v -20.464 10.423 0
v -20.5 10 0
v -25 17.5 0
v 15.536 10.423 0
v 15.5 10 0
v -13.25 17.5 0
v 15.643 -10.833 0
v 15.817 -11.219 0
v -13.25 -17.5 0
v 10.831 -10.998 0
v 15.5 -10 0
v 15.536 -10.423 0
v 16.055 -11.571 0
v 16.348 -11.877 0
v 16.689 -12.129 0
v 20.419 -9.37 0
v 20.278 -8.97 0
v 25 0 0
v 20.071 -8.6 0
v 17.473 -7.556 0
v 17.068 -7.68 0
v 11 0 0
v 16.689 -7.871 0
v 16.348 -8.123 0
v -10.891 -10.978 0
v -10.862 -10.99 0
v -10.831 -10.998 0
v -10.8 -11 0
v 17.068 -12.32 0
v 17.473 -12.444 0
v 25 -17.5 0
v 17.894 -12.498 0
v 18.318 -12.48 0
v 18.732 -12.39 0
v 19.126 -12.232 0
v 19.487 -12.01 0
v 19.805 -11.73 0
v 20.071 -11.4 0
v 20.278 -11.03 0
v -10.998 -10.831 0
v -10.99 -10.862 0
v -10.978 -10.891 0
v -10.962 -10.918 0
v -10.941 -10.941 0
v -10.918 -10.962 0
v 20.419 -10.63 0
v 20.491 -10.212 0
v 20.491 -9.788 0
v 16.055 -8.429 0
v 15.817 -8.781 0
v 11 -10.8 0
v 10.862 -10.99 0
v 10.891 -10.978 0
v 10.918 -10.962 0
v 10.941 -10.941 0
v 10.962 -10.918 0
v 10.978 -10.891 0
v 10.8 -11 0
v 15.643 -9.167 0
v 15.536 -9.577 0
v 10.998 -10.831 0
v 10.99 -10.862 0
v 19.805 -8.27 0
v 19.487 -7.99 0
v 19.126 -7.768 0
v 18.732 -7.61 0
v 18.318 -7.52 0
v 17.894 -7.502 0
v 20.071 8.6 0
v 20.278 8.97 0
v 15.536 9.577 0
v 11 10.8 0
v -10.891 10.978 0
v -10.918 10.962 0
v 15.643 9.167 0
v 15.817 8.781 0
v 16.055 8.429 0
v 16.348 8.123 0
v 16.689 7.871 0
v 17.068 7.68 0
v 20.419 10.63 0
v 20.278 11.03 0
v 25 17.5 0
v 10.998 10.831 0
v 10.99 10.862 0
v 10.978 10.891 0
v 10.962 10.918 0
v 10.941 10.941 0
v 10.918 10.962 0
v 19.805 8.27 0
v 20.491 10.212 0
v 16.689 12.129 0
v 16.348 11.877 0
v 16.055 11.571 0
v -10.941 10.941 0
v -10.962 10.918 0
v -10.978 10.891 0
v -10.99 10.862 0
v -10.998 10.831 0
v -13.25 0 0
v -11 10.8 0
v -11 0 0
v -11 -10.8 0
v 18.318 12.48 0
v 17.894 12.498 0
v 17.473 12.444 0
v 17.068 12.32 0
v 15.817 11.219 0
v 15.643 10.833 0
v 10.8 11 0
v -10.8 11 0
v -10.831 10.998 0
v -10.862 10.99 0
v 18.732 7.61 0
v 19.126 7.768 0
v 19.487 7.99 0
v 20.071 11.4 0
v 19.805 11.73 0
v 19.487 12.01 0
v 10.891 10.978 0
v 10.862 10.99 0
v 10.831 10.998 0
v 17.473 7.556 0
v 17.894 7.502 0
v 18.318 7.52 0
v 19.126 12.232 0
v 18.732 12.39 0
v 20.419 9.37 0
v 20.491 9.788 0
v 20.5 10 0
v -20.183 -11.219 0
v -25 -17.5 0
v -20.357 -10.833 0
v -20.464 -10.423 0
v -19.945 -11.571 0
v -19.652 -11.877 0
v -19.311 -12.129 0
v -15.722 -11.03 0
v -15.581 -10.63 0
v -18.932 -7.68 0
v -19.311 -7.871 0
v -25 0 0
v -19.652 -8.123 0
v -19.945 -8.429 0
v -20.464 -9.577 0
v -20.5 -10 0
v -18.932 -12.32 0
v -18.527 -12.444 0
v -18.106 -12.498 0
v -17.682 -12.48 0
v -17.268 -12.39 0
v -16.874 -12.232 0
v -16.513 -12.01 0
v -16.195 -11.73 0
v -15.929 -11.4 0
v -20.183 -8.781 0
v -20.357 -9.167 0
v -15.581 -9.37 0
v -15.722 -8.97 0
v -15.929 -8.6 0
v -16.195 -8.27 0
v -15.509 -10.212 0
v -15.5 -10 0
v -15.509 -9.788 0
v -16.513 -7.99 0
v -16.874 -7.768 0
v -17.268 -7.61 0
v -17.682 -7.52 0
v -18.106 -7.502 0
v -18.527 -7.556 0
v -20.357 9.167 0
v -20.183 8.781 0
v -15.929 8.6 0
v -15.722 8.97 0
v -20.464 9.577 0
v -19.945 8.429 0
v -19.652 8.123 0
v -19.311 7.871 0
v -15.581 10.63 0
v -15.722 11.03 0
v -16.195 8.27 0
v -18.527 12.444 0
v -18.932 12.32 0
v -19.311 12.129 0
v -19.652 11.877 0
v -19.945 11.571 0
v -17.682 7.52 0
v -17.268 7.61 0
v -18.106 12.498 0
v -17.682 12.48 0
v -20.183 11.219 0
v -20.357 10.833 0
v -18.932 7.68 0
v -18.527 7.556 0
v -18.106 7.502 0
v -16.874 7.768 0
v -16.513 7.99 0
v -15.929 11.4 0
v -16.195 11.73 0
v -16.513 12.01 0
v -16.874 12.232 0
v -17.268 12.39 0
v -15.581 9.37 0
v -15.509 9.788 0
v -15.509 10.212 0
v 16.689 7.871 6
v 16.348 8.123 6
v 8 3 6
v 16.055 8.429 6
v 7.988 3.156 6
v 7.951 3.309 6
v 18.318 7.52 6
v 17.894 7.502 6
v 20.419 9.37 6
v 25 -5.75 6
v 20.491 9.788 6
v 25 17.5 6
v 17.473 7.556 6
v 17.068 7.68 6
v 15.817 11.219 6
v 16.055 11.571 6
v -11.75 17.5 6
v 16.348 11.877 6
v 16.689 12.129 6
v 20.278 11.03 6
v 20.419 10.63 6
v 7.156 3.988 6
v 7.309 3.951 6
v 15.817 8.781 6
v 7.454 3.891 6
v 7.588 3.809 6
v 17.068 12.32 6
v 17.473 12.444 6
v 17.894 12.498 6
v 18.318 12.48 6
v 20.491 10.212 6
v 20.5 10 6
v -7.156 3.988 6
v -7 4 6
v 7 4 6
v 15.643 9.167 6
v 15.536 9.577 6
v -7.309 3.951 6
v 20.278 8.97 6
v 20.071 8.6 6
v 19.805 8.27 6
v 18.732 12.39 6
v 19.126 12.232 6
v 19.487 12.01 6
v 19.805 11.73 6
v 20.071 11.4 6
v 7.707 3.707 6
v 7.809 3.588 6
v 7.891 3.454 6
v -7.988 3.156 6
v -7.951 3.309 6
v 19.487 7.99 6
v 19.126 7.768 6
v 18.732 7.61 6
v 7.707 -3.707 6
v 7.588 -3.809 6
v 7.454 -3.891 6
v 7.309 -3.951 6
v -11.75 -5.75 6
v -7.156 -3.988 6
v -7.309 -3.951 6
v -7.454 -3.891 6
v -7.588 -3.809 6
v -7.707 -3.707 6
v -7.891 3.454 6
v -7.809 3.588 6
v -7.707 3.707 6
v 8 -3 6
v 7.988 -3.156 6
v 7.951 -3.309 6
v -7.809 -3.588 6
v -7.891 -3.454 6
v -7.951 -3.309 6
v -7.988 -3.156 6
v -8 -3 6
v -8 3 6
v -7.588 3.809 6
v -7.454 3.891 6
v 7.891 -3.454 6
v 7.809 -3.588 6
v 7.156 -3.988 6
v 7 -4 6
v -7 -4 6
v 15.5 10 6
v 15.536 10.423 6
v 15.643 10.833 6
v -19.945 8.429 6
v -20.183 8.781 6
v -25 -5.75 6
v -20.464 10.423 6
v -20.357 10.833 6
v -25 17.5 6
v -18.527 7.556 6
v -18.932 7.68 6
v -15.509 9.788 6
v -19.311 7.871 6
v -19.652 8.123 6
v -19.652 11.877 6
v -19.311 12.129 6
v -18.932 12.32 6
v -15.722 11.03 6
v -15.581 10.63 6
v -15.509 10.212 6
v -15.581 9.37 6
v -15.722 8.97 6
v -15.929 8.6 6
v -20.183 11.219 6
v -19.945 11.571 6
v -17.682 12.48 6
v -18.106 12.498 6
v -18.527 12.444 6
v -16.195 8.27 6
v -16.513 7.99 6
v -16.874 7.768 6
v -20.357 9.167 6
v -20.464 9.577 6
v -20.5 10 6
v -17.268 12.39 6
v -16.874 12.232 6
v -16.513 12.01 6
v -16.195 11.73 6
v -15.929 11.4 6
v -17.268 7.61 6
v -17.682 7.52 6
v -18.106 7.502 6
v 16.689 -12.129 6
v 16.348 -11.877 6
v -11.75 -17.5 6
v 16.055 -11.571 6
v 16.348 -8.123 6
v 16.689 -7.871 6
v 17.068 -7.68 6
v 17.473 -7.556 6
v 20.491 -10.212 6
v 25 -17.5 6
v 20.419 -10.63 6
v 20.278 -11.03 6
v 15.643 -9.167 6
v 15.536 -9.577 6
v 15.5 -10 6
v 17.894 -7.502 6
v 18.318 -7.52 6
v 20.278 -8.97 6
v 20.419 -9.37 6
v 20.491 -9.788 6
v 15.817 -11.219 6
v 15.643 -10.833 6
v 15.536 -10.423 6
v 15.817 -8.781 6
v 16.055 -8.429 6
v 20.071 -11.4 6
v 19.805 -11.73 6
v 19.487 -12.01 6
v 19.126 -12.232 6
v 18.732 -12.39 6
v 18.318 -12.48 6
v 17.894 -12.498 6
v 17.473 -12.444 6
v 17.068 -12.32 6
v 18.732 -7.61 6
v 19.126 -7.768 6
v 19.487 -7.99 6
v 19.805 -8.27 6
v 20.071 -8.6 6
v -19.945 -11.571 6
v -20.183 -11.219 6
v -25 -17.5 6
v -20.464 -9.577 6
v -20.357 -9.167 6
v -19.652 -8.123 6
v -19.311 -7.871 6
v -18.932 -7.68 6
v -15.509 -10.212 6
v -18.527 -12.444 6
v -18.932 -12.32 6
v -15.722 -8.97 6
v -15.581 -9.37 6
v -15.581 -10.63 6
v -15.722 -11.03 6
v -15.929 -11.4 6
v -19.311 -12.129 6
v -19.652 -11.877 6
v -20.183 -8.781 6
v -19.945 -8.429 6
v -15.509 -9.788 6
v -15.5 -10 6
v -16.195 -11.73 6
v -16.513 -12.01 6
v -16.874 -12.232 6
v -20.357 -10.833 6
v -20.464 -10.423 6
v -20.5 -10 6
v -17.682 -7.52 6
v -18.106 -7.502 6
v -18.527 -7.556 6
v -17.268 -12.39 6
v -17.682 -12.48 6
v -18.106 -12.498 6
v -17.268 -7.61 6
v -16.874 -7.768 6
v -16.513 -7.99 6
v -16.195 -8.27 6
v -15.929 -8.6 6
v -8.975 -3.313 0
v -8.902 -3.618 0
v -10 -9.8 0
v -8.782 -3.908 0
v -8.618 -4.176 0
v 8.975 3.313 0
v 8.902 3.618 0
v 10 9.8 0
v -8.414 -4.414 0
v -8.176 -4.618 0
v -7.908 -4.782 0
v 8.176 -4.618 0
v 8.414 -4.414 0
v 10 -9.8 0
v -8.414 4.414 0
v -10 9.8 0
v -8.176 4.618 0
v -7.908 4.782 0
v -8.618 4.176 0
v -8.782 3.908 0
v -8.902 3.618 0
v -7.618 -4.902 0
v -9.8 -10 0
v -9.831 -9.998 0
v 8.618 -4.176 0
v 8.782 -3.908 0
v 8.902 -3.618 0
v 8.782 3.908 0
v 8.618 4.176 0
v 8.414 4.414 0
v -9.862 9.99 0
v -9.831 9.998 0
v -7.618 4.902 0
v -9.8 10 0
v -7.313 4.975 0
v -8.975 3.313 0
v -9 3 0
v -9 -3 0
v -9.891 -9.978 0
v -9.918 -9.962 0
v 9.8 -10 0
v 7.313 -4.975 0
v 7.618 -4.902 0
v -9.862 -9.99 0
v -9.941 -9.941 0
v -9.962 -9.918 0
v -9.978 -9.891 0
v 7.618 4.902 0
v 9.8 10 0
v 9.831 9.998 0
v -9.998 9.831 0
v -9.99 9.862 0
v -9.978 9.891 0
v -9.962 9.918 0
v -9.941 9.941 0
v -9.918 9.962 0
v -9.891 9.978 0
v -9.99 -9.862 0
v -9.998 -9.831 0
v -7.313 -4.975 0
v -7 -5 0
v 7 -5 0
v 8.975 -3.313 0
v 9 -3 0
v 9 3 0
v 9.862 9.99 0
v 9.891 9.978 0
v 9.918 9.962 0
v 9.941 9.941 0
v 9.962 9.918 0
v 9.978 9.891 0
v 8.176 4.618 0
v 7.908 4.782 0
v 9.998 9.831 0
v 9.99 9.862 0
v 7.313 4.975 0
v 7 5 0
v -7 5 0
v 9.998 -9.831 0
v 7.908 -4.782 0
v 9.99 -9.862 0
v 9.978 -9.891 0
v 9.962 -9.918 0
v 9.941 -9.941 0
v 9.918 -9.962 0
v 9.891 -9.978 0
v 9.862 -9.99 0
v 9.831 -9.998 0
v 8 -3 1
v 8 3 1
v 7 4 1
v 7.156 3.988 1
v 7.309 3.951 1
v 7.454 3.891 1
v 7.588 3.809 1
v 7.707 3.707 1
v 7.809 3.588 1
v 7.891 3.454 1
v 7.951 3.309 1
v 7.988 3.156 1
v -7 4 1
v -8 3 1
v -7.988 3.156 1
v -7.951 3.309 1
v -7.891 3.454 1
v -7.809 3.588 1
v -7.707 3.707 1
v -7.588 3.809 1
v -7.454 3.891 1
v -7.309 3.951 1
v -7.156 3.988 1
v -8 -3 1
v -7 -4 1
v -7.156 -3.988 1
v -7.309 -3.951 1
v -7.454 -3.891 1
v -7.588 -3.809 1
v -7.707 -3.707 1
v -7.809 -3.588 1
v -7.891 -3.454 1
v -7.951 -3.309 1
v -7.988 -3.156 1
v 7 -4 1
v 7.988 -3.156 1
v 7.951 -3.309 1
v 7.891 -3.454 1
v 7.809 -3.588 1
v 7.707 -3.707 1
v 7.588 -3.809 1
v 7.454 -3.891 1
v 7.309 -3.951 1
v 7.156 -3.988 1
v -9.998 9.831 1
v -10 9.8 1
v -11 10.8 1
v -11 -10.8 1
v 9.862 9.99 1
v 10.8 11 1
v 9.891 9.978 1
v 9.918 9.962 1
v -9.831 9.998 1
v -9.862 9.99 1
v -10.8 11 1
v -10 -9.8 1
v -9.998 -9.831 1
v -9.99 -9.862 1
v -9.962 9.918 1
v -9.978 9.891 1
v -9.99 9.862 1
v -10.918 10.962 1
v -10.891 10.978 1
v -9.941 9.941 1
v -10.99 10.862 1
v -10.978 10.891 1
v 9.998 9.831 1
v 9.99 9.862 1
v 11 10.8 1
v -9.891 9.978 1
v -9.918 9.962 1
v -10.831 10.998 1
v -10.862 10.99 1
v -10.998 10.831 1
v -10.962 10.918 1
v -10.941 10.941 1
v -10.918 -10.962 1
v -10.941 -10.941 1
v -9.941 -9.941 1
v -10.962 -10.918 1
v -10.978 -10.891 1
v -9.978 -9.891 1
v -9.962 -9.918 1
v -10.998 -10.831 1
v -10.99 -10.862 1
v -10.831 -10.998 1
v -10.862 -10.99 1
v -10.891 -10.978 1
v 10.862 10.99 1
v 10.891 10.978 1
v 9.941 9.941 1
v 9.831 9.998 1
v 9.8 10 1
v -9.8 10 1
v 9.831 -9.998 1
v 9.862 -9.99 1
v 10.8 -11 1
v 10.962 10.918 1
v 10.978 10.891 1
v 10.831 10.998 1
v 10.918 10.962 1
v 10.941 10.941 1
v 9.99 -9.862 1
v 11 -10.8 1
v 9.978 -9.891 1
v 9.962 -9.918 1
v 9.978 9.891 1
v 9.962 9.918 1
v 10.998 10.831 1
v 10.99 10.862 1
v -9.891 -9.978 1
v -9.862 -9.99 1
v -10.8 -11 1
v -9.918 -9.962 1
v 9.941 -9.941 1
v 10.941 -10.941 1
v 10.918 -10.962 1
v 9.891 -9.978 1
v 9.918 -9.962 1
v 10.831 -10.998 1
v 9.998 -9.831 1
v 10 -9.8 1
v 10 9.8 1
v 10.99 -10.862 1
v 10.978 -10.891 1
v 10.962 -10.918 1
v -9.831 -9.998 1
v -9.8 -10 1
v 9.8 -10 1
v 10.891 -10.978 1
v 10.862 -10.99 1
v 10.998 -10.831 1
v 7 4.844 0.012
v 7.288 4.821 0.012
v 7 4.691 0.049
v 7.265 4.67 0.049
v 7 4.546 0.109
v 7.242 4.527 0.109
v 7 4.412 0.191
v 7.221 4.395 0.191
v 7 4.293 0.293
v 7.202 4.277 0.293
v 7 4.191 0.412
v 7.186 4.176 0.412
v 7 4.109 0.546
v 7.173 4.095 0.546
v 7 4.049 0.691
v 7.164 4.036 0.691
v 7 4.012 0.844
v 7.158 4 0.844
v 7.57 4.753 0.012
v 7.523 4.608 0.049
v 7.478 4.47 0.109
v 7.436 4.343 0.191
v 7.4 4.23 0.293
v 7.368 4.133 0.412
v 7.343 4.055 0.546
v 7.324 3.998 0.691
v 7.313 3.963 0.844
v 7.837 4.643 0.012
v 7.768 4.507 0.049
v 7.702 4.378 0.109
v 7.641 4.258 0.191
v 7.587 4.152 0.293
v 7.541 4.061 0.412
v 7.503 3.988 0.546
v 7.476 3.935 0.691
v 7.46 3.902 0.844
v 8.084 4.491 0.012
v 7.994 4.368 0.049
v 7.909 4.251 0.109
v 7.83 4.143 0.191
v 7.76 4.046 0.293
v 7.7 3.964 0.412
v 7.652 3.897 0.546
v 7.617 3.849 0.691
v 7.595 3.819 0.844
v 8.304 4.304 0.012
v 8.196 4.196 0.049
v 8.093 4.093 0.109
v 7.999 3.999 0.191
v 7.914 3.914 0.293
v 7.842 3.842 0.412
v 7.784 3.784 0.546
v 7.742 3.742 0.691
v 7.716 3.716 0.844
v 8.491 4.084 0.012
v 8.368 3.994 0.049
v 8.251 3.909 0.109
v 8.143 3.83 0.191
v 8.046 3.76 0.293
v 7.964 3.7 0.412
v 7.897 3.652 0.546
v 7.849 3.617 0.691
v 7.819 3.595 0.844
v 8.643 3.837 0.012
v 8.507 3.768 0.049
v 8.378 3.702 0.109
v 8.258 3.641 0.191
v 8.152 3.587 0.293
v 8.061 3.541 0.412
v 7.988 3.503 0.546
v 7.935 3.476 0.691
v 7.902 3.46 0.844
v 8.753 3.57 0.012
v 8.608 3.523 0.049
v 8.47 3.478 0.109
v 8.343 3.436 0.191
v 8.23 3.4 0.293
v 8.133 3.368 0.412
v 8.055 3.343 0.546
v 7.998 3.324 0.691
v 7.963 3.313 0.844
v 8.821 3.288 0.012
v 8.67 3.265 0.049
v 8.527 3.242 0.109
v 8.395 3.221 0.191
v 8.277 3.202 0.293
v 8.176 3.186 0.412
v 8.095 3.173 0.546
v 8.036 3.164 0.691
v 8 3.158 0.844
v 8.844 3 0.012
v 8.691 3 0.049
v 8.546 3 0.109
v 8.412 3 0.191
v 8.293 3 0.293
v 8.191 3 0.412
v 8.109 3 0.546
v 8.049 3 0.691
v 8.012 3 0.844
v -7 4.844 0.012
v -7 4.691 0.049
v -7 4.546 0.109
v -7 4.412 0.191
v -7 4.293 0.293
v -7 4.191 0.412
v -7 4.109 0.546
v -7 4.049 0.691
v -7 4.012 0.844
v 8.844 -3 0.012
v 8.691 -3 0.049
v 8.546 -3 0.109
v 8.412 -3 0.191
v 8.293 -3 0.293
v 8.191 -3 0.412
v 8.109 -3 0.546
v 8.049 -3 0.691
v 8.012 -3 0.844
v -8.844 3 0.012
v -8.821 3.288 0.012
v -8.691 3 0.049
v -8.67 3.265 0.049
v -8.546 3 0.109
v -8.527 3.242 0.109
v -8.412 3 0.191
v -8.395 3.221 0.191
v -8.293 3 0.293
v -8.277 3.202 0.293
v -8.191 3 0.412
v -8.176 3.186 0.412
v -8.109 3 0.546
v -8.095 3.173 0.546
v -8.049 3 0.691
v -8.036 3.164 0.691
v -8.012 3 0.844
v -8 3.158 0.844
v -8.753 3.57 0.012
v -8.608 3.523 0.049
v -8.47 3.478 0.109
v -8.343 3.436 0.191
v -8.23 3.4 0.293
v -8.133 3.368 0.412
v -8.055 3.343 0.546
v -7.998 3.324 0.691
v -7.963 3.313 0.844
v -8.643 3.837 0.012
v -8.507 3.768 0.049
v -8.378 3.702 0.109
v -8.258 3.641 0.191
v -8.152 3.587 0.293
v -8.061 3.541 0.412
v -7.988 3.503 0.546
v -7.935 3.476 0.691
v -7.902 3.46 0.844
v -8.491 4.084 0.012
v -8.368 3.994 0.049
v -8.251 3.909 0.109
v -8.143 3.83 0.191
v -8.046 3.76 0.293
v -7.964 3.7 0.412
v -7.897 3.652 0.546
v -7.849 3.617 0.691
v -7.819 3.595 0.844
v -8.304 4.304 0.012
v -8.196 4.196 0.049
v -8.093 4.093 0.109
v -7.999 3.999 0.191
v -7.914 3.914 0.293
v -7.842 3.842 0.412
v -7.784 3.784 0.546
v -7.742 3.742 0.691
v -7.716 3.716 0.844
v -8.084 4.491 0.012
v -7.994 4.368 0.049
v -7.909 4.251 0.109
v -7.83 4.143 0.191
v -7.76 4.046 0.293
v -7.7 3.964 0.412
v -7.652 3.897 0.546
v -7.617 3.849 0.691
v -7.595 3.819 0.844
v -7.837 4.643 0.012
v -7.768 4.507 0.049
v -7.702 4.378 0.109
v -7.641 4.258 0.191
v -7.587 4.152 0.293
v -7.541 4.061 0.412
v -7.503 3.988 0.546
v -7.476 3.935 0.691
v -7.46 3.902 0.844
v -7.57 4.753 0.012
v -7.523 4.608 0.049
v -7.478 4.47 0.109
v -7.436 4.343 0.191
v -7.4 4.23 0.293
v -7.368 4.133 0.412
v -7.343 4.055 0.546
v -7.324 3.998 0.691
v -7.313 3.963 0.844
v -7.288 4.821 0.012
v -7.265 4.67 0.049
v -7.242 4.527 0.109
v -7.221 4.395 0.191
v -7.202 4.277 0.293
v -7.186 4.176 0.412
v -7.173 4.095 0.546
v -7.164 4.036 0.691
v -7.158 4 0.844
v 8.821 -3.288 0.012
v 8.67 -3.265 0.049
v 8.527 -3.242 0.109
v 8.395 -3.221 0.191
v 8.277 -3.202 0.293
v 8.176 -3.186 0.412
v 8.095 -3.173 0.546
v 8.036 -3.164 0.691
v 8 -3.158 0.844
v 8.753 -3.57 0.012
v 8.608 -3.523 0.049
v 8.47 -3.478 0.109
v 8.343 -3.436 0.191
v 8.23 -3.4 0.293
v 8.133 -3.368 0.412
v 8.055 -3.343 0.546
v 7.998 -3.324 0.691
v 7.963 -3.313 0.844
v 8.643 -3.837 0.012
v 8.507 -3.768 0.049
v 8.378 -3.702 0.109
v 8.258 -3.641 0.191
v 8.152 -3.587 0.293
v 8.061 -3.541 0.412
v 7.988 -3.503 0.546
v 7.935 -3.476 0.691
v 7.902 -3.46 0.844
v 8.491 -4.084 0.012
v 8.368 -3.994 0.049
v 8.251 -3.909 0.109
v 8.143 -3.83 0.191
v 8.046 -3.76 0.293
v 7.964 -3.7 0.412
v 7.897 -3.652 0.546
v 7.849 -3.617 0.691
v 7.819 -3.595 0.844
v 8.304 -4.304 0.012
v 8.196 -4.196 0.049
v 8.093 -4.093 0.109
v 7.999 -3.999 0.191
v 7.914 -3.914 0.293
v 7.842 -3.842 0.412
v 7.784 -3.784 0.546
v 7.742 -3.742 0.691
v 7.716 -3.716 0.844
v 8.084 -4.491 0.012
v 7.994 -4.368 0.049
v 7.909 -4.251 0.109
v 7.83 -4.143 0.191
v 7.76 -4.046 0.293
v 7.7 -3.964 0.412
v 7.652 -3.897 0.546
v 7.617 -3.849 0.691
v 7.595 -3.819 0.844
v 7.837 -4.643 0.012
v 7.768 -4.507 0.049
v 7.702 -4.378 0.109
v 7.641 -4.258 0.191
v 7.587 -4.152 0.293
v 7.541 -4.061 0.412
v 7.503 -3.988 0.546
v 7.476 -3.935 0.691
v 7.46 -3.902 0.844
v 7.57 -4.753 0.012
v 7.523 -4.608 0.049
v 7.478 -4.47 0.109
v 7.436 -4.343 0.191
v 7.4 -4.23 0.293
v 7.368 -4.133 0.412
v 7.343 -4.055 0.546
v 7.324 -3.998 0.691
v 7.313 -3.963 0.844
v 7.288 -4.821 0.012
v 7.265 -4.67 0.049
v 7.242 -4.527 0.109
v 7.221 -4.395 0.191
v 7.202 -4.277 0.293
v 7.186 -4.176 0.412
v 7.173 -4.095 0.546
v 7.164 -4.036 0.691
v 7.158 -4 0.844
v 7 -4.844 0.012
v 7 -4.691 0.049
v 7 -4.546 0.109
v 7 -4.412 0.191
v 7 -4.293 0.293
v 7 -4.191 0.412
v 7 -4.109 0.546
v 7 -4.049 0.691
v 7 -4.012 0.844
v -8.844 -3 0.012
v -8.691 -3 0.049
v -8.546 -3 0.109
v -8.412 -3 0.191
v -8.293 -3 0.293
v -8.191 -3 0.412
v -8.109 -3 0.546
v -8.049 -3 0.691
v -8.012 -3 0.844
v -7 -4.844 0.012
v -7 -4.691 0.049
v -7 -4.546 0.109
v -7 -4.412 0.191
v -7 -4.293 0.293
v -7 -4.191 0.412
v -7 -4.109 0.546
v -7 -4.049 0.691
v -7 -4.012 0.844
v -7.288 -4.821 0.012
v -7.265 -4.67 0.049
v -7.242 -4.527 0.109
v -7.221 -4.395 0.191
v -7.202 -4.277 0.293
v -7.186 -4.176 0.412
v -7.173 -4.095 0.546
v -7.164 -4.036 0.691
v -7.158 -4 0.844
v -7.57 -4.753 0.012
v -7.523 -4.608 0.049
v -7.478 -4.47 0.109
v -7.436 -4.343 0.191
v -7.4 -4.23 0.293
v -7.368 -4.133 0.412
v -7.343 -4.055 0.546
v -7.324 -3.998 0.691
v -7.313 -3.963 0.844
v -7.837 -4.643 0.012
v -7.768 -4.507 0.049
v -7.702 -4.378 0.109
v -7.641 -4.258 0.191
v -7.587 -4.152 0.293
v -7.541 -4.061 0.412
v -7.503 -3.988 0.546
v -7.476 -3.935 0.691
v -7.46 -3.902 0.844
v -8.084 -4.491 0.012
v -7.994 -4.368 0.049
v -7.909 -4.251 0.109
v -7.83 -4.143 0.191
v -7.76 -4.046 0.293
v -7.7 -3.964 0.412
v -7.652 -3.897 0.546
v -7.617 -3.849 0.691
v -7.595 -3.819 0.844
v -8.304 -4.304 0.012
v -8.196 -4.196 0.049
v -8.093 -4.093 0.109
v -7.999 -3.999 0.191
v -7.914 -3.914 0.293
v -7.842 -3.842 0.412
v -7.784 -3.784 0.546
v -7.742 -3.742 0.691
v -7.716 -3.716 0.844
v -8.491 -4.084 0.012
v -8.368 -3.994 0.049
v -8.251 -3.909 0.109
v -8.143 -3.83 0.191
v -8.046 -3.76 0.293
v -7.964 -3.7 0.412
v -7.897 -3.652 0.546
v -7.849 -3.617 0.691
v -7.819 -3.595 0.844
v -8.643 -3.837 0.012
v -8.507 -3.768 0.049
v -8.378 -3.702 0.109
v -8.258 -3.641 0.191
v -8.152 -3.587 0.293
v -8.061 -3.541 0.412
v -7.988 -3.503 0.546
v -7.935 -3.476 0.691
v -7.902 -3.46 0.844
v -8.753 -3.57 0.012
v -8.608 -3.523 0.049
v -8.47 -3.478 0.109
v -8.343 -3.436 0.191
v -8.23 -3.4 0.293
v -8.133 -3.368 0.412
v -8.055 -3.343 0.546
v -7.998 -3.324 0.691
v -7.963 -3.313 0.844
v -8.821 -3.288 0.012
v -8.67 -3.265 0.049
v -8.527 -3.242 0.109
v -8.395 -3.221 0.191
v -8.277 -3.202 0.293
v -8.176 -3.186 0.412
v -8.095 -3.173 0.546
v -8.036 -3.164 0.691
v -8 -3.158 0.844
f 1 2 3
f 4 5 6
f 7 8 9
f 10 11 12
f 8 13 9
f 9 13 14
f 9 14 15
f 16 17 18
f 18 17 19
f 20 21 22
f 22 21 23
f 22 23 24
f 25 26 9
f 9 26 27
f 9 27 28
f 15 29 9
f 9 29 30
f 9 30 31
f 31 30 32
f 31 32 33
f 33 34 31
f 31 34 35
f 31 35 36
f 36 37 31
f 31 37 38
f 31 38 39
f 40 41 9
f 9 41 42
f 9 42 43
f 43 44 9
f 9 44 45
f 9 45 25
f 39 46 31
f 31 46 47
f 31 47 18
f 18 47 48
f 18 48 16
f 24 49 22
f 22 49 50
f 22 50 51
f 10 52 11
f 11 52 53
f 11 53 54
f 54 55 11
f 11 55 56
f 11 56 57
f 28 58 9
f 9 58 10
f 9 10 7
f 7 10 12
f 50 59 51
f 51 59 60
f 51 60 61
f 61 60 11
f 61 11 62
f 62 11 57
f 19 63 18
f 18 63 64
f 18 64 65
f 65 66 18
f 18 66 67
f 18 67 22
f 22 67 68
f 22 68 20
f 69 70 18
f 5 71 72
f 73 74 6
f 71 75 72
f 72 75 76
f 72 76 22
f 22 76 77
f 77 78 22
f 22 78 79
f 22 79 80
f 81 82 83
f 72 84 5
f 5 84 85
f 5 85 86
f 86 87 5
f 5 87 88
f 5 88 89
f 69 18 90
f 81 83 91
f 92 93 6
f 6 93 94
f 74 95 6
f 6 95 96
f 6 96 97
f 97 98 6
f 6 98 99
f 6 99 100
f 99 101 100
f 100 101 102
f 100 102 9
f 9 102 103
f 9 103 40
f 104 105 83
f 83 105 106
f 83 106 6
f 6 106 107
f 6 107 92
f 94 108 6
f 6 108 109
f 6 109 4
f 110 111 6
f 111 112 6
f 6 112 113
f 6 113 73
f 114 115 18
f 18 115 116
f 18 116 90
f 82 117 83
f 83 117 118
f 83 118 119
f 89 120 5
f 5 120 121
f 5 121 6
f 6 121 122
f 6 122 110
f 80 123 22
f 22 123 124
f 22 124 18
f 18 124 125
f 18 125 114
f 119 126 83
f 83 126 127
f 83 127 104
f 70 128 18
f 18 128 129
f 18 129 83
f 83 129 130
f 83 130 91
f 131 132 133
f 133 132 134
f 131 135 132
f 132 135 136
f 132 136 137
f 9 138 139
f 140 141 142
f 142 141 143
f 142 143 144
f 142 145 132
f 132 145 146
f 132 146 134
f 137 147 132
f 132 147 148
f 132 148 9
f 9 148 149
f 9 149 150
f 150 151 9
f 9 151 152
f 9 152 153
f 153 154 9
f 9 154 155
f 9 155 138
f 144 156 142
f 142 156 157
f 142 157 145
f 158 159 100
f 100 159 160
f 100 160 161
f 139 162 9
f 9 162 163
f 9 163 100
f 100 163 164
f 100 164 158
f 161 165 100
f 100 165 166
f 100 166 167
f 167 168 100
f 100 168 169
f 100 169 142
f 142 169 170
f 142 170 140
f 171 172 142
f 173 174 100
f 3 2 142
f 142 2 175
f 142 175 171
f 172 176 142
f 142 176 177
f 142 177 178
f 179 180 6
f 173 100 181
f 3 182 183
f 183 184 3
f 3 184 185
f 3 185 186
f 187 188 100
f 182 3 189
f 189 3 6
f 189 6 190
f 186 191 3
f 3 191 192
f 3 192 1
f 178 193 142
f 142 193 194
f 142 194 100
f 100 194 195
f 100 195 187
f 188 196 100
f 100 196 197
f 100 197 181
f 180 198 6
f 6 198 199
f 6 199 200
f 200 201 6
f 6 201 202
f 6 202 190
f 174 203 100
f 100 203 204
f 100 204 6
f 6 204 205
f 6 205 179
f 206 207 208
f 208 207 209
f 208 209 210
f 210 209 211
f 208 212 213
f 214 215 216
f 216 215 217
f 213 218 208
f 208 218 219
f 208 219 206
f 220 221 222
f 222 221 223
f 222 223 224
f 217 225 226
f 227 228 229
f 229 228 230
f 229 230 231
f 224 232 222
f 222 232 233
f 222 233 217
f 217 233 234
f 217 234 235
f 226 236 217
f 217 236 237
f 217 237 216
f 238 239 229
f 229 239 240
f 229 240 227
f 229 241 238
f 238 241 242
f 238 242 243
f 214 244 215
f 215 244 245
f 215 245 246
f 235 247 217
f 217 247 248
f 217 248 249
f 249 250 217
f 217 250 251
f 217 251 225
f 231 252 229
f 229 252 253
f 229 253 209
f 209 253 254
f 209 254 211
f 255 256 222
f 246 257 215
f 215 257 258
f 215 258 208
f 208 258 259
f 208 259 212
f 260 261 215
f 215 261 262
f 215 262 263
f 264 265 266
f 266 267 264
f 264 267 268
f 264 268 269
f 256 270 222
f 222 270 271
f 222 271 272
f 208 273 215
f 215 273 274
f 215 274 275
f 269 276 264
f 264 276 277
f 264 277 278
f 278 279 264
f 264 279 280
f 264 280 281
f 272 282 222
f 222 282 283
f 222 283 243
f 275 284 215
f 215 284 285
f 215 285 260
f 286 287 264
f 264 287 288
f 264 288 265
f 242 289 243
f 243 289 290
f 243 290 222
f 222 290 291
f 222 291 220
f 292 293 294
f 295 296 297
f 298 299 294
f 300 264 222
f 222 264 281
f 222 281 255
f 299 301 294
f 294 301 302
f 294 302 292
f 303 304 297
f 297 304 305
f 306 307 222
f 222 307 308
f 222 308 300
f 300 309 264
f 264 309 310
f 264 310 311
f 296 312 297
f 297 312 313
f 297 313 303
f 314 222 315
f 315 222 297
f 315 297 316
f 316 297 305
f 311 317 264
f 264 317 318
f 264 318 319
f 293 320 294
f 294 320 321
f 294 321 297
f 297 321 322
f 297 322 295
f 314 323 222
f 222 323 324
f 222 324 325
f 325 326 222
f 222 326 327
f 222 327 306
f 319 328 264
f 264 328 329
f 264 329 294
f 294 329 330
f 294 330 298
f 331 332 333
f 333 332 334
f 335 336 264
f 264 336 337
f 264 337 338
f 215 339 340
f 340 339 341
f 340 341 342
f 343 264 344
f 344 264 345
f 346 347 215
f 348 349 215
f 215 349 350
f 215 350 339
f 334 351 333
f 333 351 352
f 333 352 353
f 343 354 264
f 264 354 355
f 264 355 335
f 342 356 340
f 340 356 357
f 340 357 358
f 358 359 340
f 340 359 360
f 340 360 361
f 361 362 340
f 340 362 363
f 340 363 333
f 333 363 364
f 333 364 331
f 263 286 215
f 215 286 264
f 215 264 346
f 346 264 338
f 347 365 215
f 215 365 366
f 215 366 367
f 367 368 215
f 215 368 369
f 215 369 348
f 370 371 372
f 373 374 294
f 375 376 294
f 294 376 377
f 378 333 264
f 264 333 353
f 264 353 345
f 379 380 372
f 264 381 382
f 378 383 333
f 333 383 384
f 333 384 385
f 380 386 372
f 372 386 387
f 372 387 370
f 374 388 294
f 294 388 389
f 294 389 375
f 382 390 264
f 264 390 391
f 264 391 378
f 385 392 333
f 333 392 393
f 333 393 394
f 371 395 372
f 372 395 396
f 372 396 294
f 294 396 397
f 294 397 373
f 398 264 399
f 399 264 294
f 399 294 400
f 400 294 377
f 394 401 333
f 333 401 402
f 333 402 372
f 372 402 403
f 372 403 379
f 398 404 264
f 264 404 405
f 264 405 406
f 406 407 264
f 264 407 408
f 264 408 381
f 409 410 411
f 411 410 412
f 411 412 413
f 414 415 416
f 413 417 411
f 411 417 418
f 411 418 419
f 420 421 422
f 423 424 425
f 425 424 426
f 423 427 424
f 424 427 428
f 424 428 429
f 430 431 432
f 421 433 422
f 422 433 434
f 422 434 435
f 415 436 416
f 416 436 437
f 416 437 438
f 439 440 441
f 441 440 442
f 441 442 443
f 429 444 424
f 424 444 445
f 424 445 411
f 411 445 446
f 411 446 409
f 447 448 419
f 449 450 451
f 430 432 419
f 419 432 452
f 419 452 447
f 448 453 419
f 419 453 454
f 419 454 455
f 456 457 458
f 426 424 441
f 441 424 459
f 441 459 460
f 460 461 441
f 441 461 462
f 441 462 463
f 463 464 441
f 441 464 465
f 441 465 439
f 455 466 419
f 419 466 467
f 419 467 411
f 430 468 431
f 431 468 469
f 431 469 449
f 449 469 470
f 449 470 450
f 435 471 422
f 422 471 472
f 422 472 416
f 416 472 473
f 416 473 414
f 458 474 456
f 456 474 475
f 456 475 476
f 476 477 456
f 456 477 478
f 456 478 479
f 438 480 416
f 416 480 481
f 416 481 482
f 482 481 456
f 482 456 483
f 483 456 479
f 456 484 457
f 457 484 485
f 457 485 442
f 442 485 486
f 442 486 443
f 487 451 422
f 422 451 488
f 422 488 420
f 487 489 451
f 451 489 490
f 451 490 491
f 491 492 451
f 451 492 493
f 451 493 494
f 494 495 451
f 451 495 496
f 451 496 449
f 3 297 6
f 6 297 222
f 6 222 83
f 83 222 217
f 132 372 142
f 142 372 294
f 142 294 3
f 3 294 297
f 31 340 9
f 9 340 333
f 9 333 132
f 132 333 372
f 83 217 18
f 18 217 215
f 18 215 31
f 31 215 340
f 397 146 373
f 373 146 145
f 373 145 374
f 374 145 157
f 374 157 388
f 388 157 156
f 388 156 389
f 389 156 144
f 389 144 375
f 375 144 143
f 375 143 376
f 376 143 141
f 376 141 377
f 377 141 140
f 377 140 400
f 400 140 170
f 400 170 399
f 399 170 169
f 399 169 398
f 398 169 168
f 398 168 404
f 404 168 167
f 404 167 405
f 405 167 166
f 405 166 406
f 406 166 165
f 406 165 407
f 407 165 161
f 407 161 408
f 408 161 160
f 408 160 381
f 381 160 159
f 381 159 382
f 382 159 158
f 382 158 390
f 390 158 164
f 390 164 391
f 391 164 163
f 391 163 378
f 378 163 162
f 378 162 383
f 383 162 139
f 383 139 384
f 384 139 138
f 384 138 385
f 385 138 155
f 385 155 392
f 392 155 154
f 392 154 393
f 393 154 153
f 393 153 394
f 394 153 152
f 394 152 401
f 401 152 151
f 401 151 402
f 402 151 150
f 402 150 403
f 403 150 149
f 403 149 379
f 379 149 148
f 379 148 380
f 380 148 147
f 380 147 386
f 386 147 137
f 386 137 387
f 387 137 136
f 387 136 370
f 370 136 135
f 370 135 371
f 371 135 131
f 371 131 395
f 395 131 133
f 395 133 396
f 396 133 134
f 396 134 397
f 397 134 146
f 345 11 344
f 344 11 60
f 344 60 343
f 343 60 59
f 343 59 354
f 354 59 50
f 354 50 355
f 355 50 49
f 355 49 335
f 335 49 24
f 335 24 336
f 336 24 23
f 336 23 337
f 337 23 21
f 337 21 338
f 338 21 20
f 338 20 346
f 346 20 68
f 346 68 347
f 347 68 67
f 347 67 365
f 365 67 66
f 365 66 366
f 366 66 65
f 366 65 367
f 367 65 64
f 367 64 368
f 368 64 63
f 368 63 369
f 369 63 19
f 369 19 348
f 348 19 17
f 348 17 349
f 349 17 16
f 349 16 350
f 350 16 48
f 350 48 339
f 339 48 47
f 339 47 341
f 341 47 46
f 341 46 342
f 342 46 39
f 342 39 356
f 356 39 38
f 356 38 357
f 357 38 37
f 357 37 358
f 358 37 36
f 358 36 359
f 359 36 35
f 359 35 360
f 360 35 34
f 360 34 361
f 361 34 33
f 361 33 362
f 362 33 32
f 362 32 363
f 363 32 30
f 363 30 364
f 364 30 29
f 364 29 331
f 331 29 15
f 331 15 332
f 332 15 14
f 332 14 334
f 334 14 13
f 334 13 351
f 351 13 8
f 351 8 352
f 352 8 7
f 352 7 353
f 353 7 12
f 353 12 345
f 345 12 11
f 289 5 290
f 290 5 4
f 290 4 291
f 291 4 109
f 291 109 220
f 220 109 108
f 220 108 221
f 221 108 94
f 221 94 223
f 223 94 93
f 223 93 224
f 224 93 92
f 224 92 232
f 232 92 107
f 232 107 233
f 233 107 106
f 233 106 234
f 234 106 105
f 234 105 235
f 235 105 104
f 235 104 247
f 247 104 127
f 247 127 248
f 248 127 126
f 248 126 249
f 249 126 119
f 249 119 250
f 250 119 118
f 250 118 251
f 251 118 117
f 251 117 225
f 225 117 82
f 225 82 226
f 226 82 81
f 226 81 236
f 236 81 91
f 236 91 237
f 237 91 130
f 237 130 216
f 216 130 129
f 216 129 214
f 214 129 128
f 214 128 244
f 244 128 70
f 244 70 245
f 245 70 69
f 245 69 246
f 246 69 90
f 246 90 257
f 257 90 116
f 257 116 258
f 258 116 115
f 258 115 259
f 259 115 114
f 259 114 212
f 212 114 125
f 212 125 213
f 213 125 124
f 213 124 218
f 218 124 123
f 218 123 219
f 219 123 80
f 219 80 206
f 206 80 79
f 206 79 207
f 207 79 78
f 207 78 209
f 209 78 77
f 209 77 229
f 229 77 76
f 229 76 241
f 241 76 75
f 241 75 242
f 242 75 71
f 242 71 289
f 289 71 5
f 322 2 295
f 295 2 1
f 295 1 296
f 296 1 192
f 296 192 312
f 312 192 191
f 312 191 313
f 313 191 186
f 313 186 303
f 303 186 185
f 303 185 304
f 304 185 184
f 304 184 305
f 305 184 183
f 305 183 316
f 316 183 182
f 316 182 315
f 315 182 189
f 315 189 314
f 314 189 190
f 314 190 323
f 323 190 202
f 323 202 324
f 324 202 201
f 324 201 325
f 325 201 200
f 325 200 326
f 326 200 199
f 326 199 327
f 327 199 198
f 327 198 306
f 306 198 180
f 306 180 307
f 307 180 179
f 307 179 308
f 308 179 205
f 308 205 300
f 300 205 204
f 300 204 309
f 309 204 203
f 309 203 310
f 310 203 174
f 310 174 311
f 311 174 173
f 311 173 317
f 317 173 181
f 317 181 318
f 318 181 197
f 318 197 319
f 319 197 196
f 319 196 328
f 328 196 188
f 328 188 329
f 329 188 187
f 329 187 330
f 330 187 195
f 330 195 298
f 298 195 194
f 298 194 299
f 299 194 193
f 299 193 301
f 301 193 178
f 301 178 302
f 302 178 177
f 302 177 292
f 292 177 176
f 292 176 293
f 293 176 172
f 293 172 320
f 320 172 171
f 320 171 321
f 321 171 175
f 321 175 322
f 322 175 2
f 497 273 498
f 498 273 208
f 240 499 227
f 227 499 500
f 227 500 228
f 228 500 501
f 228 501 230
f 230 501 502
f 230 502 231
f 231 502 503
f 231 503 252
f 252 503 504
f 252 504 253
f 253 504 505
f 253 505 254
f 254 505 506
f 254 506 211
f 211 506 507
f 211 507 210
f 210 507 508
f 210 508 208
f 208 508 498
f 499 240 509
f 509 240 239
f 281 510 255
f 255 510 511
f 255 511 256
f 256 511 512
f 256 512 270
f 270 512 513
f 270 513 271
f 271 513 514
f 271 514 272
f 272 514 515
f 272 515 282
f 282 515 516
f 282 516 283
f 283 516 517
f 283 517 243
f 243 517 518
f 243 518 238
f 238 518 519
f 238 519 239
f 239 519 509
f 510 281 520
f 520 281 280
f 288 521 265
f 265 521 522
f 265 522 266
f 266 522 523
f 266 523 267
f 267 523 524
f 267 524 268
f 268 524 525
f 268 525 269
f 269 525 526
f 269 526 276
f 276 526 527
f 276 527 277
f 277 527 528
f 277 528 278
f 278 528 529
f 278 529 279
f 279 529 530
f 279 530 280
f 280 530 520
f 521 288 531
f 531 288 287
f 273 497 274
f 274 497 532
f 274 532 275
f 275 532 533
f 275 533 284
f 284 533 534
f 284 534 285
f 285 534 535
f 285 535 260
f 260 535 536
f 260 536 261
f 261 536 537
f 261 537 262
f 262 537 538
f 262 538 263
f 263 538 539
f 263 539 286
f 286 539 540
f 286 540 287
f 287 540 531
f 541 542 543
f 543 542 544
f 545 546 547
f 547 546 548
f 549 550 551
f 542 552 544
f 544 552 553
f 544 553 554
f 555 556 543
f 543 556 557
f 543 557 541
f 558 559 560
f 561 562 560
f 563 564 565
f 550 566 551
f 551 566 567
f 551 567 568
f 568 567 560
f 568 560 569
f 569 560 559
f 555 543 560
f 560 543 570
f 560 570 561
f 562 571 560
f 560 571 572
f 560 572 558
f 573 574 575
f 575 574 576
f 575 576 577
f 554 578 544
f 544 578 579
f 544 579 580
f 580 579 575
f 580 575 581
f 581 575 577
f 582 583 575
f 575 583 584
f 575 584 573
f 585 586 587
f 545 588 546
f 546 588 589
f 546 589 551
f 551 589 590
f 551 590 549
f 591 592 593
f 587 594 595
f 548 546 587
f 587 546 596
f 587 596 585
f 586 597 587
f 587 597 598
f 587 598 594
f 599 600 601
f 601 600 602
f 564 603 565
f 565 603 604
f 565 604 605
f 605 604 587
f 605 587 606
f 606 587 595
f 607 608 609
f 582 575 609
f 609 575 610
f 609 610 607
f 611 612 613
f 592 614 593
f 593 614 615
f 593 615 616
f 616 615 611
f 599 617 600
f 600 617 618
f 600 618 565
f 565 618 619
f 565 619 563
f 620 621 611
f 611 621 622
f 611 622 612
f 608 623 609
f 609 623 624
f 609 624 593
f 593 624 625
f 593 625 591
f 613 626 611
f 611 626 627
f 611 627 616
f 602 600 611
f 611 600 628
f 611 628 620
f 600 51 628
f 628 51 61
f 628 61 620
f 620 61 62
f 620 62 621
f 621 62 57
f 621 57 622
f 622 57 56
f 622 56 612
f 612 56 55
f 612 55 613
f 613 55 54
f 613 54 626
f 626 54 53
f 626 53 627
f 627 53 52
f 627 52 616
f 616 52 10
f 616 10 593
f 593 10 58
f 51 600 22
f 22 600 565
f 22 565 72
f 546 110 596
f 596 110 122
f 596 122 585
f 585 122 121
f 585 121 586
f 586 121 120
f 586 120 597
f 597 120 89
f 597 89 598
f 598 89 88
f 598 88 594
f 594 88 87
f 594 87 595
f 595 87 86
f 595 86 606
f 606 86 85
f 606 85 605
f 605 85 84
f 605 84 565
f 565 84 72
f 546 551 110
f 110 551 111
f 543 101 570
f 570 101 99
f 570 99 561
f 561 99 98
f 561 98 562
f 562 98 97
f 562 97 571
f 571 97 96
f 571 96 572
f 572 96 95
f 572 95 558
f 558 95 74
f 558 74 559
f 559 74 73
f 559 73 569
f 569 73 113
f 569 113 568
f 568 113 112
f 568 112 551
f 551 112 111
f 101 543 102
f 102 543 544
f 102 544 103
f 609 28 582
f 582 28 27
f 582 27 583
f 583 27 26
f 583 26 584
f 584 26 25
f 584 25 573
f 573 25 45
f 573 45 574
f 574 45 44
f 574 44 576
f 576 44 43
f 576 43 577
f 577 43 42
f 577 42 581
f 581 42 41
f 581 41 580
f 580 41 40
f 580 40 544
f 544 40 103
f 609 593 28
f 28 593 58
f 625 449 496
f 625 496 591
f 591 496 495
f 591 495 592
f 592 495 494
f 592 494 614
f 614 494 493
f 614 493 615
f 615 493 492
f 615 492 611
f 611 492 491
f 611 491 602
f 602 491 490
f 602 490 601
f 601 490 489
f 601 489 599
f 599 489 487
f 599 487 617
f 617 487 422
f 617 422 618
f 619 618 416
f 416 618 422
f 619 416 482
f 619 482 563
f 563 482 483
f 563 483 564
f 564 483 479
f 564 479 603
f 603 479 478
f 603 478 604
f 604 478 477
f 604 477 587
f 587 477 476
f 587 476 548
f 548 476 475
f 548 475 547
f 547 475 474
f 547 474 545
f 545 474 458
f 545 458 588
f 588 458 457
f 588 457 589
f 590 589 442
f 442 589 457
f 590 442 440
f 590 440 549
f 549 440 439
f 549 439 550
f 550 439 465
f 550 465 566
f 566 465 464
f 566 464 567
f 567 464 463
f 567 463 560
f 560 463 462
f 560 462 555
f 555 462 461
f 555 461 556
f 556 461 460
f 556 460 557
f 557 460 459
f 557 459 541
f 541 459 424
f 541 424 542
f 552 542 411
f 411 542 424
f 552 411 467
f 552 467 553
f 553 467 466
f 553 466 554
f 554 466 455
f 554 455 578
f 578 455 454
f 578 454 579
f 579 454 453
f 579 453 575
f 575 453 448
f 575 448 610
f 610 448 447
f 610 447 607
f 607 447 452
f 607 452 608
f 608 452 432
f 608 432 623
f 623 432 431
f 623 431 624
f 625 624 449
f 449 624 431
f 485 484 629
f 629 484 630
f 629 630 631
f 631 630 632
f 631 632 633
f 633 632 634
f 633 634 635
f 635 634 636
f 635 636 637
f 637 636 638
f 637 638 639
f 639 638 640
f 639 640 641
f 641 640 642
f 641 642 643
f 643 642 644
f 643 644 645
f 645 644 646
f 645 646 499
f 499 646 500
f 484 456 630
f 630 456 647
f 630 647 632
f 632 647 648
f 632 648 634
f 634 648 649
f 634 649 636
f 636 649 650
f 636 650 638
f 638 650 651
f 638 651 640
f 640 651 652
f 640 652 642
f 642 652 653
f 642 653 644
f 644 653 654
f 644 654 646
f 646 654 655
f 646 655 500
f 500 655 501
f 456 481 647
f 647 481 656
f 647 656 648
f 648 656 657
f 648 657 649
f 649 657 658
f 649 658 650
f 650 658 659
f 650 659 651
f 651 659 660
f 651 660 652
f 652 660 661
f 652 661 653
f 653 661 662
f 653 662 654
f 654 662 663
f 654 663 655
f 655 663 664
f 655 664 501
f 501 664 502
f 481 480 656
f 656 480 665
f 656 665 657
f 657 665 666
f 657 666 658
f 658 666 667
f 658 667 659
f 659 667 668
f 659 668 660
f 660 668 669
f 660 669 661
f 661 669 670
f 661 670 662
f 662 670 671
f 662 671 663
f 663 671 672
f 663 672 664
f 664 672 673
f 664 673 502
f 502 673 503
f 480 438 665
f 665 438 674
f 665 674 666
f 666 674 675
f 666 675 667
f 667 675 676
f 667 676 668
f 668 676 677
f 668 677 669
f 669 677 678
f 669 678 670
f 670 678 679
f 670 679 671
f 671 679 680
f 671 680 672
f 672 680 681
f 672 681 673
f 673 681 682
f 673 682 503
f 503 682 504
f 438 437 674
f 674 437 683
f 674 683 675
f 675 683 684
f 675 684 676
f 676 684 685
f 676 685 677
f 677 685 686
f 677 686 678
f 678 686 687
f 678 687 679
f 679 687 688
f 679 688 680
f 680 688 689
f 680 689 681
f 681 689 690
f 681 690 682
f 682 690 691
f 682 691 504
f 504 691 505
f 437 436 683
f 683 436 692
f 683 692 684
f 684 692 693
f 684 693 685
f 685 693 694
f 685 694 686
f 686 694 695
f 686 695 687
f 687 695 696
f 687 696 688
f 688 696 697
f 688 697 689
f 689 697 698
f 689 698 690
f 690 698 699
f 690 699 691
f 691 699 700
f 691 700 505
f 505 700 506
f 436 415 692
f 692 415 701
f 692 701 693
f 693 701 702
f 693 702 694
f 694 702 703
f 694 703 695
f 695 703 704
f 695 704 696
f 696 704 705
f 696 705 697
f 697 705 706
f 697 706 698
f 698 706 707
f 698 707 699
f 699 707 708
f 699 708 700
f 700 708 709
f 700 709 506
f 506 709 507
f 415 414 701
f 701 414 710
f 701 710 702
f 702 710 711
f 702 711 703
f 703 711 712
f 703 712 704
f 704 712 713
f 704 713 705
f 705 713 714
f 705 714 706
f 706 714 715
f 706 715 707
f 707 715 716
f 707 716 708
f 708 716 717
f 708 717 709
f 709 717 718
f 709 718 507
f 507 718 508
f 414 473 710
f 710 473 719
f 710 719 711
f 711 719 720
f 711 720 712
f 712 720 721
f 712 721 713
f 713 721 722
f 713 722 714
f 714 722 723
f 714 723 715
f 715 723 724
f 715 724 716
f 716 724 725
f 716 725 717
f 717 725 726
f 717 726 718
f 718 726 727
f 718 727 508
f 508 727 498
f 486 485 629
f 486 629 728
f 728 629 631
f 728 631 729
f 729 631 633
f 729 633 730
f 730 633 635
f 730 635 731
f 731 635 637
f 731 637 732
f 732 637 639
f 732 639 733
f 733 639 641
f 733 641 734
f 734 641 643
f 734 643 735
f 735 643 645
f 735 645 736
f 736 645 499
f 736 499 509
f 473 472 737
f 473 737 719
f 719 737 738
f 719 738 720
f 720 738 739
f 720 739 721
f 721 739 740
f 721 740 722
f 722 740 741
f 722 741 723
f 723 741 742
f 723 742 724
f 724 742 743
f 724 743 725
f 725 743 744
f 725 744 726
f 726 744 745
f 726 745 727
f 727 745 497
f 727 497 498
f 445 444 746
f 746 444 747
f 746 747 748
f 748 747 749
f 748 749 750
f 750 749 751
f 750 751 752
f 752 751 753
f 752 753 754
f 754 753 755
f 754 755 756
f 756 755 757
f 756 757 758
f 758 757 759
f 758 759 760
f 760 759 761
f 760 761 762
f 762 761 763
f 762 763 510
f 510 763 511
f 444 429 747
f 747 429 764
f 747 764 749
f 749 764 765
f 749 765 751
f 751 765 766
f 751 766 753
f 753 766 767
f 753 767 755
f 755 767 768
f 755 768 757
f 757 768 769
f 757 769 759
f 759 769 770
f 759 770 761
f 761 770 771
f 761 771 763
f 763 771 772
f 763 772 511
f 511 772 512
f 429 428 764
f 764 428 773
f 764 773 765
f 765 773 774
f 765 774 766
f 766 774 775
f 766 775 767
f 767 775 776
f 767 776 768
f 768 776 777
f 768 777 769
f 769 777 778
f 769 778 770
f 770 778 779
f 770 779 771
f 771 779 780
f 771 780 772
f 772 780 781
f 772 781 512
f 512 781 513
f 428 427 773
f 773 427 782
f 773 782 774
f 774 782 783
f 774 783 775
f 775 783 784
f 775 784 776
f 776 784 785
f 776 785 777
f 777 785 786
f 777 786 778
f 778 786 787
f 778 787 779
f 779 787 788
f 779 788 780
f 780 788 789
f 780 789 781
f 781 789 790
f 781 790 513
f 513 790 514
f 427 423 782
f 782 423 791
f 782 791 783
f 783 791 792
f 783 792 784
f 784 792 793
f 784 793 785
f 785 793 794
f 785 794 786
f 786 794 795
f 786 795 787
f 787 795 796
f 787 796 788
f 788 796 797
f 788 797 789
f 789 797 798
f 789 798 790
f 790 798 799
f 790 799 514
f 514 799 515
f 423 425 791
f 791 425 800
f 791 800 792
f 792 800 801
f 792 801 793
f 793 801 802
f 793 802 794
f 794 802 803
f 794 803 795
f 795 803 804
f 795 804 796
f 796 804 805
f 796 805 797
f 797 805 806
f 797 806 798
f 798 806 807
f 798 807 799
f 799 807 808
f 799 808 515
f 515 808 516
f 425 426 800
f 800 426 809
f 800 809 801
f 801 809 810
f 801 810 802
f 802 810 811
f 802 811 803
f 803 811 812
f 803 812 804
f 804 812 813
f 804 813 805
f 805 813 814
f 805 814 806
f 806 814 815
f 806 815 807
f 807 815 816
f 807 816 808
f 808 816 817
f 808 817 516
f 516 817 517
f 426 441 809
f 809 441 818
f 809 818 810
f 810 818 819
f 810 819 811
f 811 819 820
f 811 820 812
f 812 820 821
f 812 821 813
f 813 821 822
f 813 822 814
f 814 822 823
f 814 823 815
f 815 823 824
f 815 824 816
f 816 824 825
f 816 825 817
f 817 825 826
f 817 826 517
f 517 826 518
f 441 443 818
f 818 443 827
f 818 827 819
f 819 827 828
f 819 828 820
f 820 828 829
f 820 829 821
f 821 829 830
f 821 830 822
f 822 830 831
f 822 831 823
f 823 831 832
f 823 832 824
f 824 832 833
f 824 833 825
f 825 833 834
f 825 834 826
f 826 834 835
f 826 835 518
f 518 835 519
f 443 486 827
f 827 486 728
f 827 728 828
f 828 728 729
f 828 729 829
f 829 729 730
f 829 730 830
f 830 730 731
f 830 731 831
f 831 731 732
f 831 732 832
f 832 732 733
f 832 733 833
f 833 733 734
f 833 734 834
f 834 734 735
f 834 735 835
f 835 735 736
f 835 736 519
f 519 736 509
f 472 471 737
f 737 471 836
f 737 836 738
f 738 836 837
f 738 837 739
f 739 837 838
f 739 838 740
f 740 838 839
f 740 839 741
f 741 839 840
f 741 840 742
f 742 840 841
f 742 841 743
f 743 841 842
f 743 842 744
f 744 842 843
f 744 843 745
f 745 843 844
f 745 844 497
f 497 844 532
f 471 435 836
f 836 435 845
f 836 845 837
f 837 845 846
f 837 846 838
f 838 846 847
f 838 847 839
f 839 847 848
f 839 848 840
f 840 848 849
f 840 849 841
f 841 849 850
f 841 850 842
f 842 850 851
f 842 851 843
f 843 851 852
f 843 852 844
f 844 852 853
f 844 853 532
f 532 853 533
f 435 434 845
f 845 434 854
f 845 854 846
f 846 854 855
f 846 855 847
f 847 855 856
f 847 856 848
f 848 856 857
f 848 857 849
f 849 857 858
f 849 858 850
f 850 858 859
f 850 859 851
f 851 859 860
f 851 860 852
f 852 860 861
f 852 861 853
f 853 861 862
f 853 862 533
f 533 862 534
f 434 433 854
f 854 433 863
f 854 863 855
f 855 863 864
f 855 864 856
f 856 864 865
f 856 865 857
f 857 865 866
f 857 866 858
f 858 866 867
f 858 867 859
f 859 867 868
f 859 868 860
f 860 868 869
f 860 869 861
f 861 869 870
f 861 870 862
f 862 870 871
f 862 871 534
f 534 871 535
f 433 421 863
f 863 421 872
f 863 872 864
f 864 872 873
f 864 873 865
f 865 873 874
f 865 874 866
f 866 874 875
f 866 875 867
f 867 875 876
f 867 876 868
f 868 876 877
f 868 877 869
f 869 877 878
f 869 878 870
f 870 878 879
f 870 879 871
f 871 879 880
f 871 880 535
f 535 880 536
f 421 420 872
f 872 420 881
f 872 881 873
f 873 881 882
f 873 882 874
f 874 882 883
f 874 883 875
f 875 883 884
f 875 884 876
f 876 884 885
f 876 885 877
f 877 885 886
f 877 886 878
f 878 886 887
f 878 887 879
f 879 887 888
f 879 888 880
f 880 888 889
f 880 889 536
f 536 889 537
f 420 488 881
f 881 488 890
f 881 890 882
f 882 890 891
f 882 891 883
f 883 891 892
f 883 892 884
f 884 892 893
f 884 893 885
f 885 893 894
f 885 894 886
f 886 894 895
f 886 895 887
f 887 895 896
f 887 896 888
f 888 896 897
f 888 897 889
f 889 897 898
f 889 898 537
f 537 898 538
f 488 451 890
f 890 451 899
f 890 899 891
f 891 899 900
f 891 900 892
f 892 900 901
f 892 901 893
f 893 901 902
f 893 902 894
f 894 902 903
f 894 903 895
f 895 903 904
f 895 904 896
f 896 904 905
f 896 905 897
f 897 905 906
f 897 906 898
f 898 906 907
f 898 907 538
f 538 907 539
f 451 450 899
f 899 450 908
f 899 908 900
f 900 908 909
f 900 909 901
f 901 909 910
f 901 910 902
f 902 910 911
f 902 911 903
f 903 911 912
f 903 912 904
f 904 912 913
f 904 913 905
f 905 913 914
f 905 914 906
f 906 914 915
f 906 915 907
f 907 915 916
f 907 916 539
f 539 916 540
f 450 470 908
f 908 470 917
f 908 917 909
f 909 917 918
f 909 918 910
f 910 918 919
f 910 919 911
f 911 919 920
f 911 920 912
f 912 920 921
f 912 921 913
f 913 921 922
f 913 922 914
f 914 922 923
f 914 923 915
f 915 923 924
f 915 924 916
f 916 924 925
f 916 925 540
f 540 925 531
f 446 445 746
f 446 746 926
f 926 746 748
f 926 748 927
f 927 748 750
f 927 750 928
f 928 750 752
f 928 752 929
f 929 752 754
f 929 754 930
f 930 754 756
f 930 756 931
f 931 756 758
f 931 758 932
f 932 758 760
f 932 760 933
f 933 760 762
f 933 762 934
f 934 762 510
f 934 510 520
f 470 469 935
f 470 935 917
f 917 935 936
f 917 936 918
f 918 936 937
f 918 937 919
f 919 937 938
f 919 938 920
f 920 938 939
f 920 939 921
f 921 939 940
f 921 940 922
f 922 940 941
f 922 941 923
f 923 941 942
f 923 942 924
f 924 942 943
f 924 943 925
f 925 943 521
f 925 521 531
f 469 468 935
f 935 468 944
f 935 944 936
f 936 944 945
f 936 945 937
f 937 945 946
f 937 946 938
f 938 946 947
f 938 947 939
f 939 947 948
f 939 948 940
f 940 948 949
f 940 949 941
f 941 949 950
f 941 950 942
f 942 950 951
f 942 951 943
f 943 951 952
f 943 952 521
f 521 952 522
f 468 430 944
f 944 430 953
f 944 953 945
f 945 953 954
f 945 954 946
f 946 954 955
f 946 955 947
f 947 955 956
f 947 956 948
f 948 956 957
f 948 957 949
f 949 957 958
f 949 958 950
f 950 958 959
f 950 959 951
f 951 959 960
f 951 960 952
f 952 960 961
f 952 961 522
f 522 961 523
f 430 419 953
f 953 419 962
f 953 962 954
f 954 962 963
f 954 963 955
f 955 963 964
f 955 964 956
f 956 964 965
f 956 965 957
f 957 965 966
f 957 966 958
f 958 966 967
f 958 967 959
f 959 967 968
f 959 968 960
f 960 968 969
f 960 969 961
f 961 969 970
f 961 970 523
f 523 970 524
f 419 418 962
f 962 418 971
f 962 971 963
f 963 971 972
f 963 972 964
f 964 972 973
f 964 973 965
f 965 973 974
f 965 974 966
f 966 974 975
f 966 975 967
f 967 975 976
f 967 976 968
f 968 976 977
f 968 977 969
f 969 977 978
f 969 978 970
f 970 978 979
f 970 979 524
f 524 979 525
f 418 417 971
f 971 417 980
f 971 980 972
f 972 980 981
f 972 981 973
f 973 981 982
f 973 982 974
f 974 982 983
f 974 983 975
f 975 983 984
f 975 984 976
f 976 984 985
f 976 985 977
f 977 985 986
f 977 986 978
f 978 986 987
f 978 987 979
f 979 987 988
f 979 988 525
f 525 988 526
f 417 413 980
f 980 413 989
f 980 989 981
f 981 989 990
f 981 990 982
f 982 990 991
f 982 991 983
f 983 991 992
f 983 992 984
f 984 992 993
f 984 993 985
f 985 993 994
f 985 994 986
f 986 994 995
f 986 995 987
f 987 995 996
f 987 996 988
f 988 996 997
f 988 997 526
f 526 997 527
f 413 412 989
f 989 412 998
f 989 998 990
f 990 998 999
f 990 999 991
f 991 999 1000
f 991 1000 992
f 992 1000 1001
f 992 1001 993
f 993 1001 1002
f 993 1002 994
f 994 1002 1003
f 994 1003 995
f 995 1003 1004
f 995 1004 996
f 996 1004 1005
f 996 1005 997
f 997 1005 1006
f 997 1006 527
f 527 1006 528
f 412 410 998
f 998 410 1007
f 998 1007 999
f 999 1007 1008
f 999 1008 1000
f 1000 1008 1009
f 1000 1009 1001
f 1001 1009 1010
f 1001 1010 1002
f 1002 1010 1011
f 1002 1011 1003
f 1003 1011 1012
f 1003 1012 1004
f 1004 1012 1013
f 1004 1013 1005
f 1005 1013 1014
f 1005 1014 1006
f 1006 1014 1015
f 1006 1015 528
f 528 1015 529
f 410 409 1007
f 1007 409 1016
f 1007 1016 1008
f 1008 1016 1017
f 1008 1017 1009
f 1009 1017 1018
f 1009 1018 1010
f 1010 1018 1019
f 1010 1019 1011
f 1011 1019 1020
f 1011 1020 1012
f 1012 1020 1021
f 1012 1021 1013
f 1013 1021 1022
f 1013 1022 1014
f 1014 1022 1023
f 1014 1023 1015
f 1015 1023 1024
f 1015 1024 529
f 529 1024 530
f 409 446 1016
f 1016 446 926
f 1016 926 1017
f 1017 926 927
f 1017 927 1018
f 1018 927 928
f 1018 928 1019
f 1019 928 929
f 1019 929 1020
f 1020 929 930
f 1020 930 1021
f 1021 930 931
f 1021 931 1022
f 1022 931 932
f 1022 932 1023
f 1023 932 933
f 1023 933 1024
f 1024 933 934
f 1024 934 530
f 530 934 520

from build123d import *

# Parameters (mm, degrees)
SKETCH1_W           = 50
SKETCH1_H           = 35
SKETCH1_R           = 2.5
BOSS_EXTRUDE1_DEPTH = 6
CUT_EXTRUDE1_DEPTH  = 1
FILLET3_R           = 1


with BuildPart() as part:
    # Sketch1 → Boss-Extrude1 (new body)
    with BuildSketch(Plane.XY):
        Rectangle(SKETCH1_W, SKETCH1_H)
        with Locations((18, 10)):
            Circle(SKETCH1_R, mode=Mode.SUBTRACT)
        with Locations(Location((18, -10, 0), (0, 0, 180))):
            Circle(SKETCH1_R, mode=Mode.SUBTRACT)
        with Locations(Location((-18, 10, 0), (0, 0, 180))):
            Circle(SKETCH1_R, mode=Mode.SUBTRACT)
        with Locations((-18, -10)):
            Circle(SKETCH1_R, mode=Mode.SUBTRACT)
        with BuildLine():
            Line((-7, 4), (7, 4))
            ThreePointArc((7, 4), (7.707106781, 3.707106781), (8, 3))
            Line((8, 3), (8, -3))
            ThreePointArc((8, -3), (7.707106781, -3.707106781), (7, -4))
            Line((7, -4), (-7, -4))
            ThreePointArc((-7, -4), (-7.707106781, -3.707106781), (-8, -3))
            Line((-8, -3), (-8, 3))
            ThreePointArc((-8, 3), (-7.707106781, 3.707106781), (-7, 4))
        make_face(mode=Mode.SUBTRACT)
    extrude(amount=BOSS_EXTRUDE1_DEPTH)

    # Sketch2 → Cut-Extrude1 (cut)
    with BuildSketch(Plane.XY):
        with BuildLine():
            Line((-10.8, -11), (10.8, -11))
            ThreePointArc((10.8, -11), (10.941421356, -10.941421356), (11, -10.8))
            Line((11, -10.8), (11, 10.8))
            ThreePointArc((11, 10.8), (10.941421356, 10.941421356), (10.8, 11))
            Line((10.8, 11), (-10.8, 11))
            ThreePointArc((-10.8, 11), (-10.941421356, 10.941421356), (-11, 10.8))
            Line((-11, 10.8), (-11, -10.8))
            ThreePointArc((-11, -10.8), (-10.941421356, -10.941421356), (-10.8, -11))
        make_face()
        with BuildLine():
            Line((-9.8, -10), (9.8, -10))
            ThreePointArc((9.8, -10), (9.941421356, -9.941421356), (10, -9.8))
            Line((10, -9.8), (10, 9.8))
            ThreePointArc((10, 9.8), (9.941421356, 9.941421356), (9.8, 10))
            Line((9.8, 10), (-9.8, 10))
            ThreePointArc((-9.8, 10), (-9.941421356, 9.941421356), (-10, 9.8))
            Line((-10, 9.8), (-10, -9.8))
            ThreePointArc((-10, -9.8), (-9.941421356, -9.941421356), (-9.8, -10))
        make_face(mode=Mode.SUBTRACT)
    extrude(amount=CUT_EXTRUDE1_DEPTH, mode=Mode.SUBTRACT)

    # Fillet3
    fillet3_edges = [part.edges().sort_by_distance(p)[0] for p in [
        (-7.707106781, 3.707106781, 0),
        (-8, 0, 0),
        (-7.707106781, -3.707106781, 0),
        (0, -4, 0),
        (7.707106781, -3.707106781, 0),
        (8, 0, 0),
        (0, 4, 0),
        (7.707106781, 3.707106781, 0),
    ]]
    fillet(fillet3_edges, radius=FILLET3_R)


solid = part.part
